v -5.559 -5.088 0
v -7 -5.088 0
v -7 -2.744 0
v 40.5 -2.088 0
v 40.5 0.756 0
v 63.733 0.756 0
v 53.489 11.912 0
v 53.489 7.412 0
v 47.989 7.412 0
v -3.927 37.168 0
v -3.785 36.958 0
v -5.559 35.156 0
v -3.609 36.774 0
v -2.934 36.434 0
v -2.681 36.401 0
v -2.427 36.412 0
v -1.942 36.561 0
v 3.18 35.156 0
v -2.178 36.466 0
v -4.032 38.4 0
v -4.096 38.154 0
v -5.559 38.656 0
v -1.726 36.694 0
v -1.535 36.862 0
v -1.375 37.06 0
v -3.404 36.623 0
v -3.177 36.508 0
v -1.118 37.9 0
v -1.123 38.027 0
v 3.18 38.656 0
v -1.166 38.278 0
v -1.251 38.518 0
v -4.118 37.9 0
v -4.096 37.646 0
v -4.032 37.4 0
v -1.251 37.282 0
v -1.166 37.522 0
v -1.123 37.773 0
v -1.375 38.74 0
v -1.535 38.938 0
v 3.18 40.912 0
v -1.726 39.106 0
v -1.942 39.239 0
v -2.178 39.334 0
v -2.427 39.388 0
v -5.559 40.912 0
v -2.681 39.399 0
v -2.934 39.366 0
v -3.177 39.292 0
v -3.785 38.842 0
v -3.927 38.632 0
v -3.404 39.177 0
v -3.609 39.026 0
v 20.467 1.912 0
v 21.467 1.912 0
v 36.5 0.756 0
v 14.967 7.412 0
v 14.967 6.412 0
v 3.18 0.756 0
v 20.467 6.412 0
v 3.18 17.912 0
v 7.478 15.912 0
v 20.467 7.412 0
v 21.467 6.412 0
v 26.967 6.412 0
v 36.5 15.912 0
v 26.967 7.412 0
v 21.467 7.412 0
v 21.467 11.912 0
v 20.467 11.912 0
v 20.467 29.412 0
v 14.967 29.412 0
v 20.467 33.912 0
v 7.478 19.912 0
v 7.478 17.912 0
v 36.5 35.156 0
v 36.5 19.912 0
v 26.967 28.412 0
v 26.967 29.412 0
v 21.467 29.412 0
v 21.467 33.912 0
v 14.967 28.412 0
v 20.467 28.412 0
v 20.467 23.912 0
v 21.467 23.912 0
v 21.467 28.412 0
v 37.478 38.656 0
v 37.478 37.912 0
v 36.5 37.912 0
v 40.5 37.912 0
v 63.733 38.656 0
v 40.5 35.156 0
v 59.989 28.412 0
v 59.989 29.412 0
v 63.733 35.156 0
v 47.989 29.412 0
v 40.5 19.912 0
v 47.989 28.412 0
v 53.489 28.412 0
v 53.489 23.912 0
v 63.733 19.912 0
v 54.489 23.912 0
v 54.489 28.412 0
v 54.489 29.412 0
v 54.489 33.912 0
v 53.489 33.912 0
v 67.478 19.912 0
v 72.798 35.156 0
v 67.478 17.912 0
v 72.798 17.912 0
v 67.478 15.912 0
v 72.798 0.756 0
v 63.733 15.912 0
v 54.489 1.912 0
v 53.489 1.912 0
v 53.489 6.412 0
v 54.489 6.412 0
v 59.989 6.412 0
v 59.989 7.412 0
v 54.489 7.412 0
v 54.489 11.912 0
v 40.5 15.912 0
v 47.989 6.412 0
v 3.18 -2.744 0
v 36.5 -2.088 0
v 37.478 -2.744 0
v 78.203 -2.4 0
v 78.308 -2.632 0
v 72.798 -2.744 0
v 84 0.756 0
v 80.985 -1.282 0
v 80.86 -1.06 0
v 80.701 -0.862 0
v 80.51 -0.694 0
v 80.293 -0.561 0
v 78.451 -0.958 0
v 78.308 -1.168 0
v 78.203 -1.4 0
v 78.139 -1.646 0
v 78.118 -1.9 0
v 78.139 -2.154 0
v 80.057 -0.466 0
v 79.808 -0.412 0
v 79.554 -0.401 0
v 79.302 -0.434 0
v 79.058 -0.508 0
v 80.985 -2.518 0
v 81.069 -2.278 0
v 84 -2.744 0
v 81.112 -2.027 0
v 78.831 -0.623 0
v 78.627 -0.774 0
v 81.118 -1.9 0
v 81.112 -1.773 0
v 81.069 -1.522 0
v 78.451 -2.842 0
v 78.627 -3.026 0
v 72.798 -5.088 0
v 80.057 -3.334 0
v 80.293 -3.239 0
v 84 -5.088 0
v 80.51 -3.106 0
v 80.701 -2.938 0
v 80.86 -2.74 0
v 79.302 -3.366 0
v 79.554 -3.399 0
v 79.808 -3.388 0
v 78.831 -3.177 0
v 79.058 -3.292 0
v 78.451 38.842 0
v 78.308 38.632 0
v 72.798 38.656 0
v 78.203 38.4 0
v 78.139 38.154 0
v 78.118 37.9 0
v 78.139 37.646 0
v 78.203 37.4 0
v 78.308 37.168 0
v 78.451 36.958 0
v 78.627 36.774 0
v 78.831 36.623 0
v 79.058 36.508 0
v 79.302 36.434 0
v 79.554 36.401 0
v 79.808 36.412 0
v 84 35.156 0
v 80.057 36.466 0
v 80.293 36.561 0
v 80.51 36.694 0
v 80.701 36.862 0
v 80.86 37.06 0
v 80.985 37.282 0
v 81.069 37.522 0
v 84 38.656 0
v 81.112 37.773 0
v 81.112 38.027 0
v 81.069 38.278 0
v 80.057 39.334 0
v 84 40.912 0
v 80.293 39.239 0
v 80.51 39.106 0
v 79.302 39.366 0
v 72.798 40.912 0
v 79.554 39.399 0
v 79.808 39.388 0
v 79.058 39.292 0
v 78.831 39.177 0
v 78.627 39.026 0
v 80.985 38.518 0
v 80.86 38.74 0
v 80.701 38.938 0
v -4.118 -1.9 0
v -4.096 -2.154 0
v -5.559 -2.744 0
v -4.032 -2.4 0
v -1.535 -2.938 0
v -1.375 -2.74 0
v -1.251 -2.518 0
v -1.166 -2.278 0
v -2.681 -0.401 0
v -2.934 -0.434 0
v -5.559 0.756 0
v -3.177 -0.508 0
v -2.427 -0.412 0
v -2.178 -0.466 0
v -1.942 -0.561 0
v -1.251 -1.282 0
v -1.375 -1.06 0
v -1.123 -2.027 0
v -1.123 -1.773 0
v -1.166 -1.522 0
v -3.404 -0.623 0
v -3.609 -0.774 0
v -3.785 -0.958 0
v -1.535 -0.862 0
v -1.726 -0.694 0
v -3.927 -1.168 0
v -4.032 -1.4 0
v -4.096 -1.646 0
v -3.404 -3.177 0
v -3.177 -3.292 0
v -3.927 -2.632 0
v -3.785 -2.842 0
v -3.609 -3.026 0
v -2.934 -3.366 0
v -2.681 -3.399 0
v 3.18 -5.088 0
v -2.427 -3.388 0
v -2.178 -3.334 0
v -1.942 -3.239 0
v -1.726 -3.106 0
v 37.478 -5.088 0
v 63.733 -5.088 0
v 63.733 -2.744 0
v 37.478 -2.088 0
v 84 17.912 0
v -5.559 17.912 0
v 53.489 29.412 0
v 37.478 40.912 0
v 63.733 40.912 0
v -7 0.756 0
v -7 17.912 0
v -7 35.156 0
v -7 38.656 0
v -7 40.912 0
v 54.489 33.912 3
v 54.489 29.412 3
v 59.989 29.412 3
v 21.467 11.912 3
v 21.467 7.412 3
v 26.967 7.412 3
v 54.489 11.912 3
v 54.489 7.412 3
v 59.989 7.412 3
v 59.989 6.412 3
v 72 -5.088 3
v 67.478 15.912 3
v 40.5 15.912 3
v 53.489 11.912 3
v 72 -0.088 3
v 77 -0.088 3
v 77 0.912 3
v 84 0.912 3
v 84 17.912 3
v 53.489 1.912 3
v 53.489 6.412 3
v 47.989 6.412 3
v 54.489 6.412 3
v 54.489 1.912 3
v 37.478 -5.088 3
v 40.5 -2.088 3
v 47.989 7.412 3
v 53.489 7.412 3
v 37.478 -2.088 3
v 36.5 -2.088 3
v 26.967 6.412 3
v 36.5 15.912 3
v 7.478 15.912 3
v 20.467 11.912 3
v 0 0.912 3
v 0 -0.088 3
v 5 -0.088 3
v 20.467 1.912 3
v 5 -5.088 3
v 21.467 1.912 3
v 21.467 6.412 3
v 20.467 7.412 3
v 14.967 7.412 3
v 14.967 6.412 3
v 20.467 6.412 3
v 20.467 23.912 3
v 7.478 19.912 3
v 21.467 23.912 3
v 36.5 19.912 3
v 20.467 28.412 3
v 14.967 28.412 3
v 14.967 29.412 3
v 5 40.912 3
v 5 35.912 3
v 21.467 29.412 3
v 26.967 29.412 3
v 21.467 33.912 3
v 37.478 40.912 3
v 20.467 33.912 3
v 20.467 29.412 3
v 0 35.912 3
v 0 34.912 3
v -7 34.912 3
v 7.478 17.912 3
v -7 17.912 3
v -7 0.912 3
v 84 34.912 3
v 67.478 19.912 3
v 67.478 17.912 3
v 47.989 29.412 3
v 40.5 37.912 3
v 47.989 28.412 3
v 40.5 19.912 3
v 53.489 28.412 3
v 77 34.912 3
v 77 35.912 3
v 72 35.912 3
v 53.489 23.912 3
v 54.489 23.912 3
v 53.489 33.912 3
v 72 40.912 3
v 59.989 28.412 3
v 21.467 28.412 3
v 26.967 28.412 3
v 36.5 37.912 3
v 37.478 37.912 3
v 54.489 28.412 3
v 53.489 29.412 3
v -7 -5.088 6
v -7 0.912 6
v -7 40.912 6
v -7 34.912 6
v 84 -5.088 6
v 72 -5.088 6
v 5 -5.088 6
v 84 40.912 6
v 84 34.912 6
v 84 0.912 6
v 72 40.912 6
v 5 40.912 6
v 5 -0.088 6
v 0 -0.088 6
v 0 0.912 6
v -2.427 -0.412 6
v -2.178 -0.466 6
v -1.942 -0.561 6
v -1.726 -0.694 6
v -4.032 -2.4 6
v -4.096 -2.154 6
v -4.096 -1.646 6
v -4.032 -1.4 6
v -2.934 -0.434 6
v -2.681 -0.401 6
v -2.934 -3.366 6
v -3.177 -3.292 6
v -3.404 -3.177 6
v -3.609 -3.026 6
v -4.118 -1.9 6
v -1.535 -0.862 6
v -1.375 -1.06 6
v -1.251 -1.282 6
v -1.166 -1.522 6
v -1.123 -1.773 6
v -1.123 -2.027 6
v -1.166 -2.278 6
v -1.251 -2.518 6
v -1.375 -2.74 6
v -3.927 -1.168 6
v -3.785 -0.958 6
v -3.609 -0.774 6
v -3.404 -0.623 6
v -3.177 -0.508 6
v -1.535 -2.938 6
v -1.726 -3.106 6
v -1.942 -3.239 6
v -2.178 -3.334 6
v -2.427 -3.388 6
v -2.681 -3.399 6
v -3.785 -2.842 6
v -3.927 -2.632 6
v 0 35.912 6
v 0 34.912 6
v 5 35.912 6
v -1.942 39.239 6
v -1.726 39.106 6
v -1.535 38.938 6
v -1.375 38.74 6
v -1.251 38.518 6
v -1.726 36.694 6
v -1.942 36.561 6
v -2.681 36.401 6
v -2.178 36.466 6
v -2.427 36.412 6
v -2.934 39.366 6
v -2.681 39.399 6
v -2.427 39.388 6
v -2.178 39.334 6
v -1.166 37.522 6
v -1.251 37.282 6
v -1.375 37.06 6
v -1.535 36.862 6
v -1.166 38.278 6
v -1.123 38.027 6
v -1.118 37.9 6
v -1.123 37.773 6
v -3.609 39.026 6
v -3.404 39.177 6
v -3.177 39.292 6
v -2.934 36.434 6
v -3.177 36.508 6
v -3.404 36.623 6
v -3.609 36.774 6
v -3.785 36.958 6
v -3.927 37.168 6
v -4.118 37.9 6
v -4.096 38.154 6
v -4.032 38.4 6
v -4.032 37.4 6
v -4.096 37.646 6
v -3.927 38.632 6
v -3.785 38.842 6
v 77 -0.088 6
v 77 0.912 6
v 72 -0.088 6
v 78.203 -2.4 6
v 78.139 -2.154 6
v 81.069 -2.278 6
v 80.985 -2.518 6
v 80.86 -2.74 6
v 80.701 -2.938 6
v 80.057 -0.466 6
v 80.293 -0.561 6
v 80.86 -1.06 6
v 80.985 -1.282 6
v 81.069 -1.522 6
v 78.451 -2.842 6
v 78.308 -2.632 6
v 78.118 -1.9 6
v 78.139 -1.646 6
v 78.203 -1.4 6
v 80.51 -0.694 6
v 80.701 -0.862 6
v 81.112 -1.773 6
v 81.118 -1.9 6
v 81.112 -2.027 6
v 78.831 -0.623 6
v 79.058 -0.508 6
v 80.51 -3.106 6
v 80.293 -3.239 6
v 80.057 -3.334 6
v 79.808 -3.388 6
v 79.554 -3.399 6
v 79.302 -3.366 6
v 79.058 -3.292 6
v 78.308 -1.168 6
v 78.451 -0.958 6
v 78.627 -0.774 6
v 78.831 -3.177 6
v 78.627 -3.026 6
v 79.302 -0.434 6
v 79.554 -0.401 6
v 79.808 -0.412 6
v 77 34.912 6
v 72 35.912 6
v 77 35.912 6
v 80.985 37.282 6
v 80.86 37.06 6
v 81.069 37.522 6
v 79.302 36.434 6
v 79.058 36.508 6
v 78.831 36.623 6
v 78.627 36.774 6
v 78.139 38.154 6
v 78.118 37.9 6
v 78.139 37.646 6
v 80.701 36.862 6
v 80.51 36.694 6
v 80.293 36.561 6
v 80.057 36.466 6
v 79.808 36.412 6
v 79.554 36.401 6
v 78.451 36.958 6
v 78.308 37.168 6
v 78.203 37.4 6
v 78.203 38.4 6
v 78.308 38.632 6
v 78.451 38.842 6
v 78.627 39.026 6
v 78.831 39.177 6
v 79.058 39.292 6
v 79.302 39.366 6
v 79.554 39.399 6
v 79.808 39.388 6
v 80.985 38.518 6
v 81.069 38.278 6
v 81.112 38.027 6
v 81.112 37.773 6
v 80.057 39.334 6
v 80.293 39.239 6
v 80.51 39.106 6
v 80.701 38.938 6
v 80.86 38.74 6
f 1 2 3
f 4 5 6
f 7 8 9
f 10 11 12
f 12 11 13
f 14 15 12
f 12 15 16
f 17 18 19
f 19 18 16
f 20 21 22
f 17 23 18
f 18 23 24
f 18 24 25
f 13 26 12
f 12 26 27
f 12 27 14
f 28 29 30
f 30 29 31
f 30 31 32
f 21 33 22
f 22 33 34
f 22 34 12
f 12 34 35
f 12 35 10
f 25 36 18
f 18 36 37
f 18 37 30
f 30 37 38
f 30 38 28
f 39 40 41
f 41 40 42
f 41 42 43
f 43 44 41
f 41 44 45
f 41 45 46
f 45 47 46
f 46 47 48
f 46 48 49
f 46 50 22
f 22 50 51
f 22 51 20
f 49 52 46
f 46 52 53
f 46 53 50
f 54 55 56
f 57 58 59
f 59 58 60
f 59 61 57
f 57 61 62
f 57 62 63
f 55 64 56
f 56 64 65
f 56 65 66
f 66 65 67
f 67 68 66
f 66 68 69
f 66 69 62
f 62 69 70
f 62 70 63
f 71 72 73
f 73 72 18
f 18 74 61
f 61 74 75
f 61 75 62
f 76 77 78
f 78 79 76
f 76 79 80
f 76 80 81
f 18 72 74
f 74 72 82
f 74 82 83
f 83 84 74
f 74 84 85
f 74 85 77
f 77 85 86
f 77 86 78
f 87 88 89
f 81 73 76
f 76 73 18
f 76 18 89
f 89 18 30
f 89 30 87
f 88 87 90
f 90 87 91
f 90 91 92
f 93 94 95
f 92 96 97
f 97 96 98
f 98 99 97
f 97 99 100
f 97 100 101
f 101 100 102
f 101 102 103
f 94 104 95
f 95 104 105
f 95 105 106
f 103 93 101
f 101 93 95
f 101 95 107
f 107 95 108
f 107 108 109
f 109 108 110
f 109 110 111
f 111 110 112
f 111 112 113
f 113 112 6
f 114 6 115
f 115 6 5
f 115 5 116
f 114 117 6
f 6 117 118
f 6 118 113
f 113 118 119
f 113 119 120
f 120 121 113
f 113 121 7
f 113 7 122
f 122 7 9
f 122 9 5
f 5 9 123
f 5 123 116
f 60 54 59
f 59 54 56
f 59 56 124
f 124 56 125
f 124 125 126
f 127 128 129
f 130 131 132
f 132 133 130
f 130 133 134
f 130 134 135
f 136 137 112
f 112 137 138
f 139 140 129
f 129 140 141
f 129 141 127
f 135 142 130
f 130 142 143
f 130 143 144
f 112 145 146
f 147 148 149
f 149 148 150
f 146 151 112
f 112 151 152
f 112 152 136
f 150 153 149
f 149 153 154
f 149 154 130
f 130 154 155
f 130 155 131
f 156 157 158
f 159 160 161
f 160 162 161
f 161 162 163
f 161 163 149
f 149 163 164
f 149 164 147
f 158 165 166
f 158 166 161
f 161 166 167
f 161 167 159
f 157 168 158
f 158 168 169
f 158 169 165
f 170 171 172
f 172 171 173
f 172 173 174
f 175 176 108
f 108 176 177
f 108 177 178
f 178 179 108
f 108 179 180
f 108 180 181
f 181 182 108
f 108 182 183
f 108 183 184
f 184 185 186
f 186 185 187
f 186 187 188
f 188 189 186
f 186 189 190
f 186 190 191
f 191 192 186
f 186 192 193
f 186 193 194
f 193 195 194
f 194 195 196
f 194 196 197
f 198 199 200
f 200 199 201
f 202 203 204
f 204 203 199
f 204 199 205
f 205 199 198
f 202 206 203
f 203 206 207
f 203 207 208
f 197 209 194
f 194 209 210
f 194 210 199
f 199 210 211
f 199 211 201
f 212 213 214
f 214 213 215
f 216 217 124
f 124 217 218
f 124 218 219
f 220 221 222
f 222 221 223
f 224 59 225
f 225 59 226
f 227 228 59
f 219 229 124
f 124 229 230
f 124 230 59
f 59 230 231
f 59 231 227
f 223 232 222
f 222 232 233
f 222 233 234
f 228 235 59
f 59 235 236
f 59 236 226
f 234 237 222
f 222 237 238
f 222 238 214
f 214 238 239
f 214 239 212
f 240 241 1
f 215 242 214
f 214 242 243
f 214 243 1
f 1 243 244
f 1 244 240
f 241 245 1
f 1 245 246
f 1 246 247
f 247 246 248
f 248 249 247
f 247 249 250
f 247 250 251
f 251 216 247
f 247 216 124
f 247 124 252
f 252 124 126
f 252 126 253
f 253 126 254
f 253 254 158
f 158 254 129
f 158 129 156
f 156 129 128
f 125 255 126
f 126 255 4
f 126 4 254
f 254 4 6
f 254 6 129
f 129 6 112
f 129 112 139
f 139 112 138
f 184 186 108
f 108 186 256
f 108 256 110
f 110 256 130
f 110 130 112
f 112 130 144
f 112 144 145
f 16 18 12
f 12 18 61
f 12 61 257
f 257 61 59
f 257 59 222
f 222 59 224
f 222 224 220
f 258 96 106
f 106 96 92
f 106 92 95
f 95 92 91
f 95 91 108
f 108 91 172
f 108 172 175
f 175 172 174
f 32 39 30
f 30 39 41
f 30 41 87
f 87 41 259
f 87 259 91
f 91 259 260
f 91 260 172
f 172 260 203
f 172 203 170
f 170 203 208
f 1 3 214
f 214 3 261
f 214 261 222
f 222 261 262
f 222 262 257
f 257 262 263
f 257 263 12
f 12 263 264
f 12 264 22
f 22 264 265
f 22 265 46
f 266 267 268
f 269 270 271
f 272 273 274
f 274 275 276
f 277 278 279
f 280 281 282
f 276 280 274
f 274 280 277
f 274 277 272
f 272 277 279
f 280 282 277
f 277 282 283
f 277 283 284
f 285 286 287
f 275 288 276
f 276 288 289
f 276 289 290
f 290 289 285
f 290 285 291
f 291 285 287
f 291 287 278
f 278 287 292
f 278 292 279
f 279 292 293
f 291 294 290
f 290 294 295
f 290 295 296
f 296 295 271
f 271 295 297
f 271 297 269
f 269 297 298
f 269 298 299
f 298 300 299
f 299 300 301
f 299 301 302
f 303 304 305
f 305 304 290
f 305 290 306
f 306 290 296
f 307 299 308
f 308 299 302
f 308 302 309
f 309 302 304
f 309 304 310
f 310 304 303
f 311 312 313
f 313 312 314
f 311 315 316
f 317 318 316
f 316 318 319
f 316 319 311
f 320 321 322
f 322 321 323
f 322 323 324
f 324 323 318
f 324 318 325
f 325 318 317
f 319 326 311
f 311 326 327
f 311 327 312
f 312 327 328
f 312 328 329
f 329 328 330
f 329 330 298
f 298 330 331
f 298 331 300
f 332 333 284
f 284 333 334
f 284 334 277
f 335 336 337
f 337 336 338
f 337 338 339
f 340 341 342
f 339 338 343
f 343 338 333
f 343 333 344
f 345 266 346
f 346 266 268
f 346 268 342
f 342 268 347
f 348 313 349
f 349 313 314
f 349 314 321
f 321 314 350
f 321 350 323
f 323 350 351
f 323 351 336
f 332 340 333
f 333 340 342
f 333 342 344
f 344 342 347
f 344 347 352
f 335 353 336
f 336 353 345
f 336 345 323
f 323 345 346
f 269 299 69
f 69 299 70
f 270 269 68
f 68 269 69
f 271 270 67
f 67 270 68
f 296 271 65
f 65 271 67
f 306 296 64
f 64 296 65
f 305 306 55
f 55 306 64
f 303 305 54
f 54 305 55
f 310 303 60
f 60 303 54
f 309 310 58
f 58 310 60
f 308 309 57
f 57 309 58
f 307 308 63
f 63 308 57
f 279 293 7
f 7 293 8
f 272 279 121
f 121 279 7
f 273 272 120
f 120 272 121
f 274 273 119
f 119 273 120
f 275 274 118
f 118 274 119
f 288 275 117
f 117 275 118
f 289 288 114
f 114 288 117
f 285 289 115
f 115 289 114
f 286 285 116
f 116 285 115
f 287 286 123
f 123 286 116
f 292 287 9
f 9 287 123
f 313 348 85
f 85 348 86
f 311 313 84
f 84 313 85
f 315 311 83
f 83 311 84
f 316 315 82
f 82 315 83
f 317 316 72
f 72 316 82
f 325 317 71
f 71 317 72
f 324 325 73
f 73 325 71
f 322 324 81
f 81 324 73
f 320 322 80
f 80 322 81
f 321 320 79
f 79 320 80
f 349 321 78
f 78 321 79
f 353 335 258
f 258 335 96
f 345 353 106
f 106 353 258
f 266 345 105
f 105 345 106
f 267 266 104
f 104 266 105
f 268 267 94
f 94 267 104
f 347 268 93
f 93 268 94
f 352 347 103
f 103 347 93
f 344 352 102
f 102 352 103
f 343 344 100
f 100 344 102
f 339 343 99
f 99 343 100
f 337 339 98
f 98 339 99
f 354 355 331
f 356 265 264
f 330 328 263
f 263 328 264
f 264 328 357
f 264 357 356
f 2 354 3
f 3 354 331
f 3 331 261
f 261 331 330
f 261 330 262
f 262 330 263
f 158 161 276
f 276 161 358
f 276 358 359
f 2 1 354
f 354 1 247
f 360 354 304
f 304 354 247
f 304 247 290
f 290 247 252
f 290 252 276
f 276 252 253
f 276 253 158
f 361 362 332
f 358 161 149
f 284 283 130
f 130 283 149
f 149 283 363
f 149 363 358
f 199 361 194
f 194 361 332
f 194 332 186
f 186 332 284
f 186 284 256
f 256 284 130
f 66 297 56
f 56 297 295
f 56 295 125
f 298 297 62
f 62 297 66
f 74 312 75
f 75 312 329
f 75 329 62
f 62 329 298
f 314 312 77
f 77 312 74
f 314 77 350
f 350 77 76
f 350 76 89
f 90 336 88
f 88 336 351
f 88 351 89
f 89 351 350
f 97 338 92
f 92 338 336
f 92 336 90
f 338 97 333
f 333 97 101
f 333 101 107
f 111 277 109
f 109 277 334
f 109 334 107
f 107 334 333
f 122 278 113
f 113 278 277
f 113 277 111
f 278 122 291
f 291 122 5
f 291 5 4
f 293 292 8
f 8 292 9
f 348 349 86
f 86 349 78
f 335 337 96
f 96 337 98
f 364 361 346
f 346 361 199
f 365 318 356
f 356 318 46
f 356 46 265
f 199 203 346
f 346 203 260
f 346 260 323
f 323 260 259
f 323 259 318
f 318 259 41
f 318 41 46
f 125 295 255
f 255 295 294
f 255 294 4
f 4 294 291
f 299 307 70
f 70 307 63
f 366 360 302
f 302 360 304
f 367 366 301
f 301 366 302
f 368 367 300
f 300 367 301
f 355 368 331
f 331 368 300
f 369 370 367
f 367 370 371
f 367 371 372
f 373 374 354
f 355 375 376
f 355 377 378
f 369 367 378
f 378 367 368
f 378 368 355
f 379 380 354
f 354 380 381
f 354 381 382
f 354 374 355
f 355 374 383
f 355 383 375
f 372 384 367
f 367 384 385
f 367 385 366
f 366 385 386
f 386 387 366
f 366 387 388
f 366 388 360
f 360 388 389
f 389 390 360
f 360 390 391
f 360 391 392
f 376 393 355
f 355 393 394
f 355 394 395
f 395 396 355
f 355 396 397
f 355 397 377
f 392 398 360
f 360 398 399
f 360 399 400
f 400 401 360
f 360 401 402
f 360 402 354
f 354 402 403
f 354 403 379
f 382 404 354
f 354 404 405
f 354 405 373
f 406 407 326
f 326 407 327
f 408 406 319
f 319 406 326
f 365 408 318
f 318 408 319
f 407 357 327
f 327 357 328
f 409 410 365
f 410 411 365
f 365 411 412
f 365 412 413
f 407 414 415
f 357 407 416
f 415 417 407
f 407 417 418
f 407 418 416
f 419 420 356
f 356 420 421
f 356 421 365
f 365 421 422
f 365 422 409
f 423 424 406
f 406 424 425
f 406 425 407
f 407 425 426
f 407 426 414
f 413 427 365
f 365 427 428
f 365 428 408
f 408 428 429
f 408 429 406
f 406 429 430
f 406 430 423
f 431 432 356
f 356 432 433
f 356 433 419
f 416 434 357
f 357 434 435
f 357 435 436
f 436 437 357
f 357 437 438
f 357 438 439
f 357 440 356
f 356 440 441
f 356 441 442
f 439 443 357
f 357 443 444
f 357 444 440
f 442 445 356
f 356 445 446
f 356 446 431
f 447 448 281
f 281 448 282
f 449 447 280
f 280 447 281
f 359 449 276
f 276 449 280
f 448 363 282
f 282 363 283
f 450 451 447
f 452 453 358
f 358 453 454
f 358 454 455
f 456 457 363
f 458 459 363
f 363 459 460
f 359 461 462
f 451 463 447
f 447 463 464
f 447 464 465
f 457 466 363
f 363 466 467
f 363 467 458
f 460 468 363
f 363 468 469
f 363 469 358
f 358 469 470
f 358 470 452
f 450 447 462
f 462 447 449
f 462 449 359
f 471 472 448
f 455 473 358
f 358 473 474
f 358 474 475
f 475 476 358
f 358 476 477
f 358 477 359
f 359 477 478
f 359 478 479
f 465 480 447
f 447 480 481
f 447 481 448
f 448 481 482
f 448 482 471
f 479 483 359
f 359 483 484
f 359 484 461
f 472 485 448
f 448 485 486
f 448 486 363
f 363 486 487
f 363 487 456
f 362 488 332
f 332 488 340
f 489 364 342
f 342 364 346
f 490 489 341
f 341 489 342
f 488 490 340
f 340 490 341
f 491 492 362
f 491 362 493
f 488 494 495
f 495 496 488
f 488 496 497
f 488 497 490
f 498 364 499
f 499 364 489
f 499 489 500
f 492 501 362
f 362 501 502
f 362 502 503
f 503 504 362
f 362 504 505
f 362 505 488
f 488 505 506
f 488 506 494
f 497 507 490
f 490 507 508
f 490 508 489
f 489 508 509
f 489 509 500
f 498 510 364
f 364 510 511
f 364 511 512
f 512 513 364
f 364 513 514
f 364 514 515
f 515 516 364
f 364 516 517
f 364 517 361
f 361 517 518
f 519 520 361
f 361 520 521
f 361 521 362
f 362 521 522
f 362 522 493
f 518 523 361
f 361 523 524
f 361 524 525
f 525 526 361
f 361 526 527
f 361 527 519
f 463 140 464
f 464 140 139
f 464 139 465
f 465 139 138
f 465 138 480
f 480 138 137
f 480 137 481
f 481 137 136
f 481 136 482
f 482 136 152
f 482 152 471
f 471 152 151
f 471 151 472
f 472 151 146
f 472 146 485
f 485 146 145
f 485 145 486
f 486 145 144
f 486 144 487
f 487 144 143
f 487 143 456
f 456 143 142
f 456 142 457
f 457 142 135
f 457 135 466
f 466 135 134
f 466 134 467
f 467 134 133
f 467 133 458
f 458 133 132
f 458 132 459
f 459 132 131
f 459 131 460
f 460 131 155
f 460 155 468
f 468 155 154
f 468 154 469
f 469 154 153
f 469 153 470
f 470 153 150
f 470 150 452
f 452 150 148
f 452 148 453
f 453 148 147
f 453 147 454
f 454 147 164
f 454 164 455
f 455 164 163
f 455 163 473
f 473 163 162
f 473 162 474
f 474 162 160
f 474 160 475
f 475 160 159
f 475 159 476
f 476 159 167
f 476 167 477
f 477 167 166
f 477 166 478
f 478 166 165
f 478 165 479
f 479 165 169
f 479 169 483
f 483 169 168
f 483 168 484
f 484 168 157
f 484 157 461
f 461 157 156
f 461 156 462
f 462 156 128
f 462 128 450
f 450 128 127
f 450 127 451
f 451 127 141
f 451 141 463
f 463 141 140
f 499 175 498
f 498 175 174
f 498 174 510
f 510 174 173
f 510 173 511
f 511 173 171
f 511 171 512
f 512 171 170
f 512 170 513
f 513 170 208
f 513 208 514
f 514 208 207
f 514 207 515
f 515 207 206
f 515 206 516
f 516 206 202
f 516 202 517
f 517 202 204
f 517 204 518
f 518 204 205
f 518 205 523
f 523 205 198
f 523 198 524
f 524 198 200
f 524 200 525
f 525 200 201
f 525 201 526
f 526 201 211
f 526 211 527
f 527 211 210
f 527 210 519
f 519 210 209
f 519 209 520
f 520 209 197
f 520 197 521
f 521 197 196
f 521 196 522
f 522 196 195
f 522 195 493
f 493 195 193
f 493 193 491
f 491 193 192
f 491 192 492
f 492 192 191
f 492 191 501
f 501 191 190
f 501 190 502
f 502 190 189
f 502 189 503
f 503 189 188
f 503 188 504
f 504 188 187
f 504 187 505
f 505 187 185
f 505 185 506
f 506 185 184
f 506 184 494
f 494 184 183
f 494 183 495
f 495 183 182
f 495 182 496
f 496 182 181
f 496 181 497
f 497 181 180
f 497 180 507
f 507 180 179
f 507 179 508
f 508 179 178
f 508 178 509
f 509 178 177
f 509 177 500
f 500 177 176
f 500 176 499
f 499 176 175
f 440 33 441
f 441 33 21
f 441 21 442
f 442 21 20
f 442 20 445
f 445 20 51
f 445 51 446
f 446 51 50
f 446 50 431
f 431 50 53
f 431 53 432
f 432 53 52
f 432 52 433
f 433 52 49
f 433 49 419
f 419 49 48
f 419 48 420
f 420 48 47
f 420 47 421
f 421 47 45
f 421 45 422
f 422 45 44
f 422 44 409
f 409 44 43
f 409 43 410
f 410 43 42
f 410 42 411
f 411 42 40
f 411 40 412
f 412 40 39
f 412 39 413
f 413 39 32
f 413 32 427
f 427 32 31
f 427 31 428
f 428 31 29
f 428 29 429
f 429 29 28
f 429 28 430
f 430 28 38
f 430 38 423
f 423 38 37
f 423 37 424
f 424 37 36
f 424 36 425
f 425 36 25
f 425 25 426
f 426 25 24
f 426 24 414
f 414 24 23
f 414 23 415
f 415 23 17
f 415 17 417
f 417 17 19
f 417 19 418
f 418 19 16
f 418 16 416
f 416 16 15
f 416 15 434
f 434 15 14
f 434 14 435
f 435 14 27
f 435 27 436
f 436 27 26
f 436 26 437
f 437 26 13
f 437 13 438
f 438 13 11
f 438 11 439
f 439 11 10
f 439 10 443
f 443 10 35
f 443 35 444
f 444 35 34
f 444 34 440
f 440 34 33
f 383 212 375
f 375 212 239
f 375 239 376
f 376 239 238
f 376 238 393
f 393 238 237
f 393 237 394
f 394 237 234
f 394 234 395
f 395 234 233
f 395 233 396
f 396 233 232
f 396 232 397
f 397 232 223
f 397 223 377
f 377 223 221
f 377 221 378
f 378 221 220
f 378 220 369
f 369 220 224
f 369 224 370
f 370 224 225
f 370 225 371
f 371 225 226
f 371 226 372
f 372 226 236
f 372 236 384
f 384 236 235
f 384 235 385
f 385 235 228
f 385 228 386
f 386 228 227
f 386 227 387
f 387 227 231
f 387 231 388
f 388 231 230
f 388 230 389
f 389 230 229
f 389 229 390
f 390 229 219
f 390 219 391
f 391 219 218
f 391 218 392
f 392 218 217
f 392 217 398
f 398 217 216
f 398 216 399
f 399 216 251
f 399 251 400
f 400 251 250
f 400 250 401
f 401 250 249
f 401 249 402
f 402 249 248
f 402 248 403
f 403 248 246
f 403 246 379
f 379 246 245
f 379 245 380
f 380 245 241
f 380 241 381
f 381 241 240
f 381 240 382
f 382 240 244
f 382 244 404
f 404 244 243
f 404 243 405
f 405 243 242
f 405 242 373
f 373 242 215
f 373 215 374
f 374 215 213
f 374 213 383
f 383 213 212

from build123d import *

# Parameters (mm, degrees)
BOSS_EXTRUDE1_DEPTH = 3
BOSS_EXTRUDE2_DEPTH = 3
SKETCH5_R           = 1.5
CUT_EXTRUDE7_DEPTH  = 7
SKETCH5_26_R        = 1.5
CUT_EXTRUDE8_DEPTH  = 7


with BuildPart() as part:
    # Sketch1 → Boss-Extrude1 (new body)
    with BuildSketch(Plane.XY):
        Polygon((-7, 40.912310071), (-7, 30.912310071), (-7, 4.912310071), (-7, -5.087689929), (5, -5.087689929), (69.955466391, -5.087689929), (84, -5.087689929), (84, 4.912310071), (84, 30.912310071), (84, 40.912310071), (69.955466391, 40.912310071), (5, 40.912310071), align=None)
        Polygon((20.466599793, 11.912310071), (21.466599793, 11.912310071), (21.466599793, 7.412310071), (26.966599793, 7.412310071), (26.966599793, 6.412310071), (21.466599793, 6.412310071), (21.466599793, 1.912310071), (20.466599793, 1.912310071), (20.466599793, 6.412310071), (14.966599793, 6.412310071), (14.966599793, 7.412310071), (20.466599793, 7.412310071), align=None, mode=Mode.SUBTRACT)
        Polygon((53.488866598, 7.412310071), (53.488866598, 11.912310071), (54.488866598, 11.912310071), (54.488866598, 7.412310071), (59.988866598, 7.412310071), (59.988866598, 6.412310071), (54.488866598, 6.412310071), (54.488866598, 1.912310071), (53.488866598, 1.912310071), (53.488866598, 6.412310071), (47.988866598, 6.412310071), (47.988866598, 7.412310071), align=None, mode=Mode.SUBTRACT)
        Polygon((40.5, 37.912310071), (40.5, 19.912310071), (67.477733195, 19.912310071), (67.477733195, 15.912310071), (40.5, 15.912310071), (40.5, -2.087689929), (36.5, -2.087689929), (36.5, 15.912310071), (7.477733195, 15.912310071), (7.477733195, 19.912310071), (36.5, 19.912310071), (36.5, 37.912310071), align=None, mode=Mode.SUBTRACT)
        Polygon((21.466599793, 28.412310071), (21.466599793, 23.912310071), (20.466599793, 23.912310071), (20.466599793, 28.412310071), (14.966599793, 28.412310071), (14.966599793, 29.412310071), (20.466599793, 29.412310071), (20.466599793, 33.912310071), (21.466599793, 33.912310071), (21.466599793, 29.412310071), (26.966599793, 29.412310071), (26.966599793, 28.412310071), align=None, mode=Mode.SUBTRACT)
        Polygon((54.488866598, 23.912310071), (53.488866598, 23.912310071), (53.488866598, 28.412310071), (47.988866598, 28.412310071), (47.988866598, 29.412310071), (53.488866598, 29.412310071), (53.488866598, 33.912310071), (54.488866598, 33.912310071), (54.488866598, 29.412310071), (59.988866598, 29.412310071), (59.988866598, 28.412310071), (54.488866598, 28.412310071), align=None, mode=Mode.SUBTRACT)
    extrude(amount=BOSS_EXTRUDE1_DEPTH)

    # Sketch3 → Boss-Extrude2 (add)
    with BuildSketch(Plane.XY.offset(3)):
        Polygon((-7, -5.087689929), (-7, 0.912310071), (0, 0.912310071), (0, -0.087689929), (5, -0.087689929), (5, -5.087689929), align=None)
        Polygon((0, 35.912310071), (5, 35.912310071), (5, 40.912310071), (-7, 40.912310071), (-7, 34.912310071), (0, 34.912310071), align=None)
        Polygon((77, -0.087689929), (72, -0.087689929), (72, -5.087689929), (84, -5.087689929), (84, 0.912310071), (77, 0.912310071), align=None)
        Polygon((77, 34.912310071), (77, 35.912310071), (72, 35.912310071), (72, 40.912310071), (84, 40.912310071), (84, 34.912310071), align=None)
    extrude(amount=BOSS_EXTRUDE2_DEPTH)

    # Sketch5 → Cut-Extrude7 (cut, through all)
    with BuildSketch(Plane.XY):
        with Locations((79.617691454, -1.9)):
            Circle(SKETCH5_R)
    extrude(amount=CUT_EXTRUDE7_DEPTH, mode=Mode.SUBTRACT)

    # Sketch5<26> → Cut-Extrude8 (cut, through all)
    with BuildSketch(Plane.XY):
        with Locations((-2.617691454, 37.9)):
            Circle(SKETCH5_26_R)
        with Locations((-2.617691454, -1.9)):
            Circle(SKETCH5_26_R)
        with Locations((79.617691454, 37.9)):
            Circle(SKETCH5_26_R)
    extrude(amount=CUT_EXTRUDE8_DEPTH, mode=Mode.SUBTRACT)


solid = part.part
